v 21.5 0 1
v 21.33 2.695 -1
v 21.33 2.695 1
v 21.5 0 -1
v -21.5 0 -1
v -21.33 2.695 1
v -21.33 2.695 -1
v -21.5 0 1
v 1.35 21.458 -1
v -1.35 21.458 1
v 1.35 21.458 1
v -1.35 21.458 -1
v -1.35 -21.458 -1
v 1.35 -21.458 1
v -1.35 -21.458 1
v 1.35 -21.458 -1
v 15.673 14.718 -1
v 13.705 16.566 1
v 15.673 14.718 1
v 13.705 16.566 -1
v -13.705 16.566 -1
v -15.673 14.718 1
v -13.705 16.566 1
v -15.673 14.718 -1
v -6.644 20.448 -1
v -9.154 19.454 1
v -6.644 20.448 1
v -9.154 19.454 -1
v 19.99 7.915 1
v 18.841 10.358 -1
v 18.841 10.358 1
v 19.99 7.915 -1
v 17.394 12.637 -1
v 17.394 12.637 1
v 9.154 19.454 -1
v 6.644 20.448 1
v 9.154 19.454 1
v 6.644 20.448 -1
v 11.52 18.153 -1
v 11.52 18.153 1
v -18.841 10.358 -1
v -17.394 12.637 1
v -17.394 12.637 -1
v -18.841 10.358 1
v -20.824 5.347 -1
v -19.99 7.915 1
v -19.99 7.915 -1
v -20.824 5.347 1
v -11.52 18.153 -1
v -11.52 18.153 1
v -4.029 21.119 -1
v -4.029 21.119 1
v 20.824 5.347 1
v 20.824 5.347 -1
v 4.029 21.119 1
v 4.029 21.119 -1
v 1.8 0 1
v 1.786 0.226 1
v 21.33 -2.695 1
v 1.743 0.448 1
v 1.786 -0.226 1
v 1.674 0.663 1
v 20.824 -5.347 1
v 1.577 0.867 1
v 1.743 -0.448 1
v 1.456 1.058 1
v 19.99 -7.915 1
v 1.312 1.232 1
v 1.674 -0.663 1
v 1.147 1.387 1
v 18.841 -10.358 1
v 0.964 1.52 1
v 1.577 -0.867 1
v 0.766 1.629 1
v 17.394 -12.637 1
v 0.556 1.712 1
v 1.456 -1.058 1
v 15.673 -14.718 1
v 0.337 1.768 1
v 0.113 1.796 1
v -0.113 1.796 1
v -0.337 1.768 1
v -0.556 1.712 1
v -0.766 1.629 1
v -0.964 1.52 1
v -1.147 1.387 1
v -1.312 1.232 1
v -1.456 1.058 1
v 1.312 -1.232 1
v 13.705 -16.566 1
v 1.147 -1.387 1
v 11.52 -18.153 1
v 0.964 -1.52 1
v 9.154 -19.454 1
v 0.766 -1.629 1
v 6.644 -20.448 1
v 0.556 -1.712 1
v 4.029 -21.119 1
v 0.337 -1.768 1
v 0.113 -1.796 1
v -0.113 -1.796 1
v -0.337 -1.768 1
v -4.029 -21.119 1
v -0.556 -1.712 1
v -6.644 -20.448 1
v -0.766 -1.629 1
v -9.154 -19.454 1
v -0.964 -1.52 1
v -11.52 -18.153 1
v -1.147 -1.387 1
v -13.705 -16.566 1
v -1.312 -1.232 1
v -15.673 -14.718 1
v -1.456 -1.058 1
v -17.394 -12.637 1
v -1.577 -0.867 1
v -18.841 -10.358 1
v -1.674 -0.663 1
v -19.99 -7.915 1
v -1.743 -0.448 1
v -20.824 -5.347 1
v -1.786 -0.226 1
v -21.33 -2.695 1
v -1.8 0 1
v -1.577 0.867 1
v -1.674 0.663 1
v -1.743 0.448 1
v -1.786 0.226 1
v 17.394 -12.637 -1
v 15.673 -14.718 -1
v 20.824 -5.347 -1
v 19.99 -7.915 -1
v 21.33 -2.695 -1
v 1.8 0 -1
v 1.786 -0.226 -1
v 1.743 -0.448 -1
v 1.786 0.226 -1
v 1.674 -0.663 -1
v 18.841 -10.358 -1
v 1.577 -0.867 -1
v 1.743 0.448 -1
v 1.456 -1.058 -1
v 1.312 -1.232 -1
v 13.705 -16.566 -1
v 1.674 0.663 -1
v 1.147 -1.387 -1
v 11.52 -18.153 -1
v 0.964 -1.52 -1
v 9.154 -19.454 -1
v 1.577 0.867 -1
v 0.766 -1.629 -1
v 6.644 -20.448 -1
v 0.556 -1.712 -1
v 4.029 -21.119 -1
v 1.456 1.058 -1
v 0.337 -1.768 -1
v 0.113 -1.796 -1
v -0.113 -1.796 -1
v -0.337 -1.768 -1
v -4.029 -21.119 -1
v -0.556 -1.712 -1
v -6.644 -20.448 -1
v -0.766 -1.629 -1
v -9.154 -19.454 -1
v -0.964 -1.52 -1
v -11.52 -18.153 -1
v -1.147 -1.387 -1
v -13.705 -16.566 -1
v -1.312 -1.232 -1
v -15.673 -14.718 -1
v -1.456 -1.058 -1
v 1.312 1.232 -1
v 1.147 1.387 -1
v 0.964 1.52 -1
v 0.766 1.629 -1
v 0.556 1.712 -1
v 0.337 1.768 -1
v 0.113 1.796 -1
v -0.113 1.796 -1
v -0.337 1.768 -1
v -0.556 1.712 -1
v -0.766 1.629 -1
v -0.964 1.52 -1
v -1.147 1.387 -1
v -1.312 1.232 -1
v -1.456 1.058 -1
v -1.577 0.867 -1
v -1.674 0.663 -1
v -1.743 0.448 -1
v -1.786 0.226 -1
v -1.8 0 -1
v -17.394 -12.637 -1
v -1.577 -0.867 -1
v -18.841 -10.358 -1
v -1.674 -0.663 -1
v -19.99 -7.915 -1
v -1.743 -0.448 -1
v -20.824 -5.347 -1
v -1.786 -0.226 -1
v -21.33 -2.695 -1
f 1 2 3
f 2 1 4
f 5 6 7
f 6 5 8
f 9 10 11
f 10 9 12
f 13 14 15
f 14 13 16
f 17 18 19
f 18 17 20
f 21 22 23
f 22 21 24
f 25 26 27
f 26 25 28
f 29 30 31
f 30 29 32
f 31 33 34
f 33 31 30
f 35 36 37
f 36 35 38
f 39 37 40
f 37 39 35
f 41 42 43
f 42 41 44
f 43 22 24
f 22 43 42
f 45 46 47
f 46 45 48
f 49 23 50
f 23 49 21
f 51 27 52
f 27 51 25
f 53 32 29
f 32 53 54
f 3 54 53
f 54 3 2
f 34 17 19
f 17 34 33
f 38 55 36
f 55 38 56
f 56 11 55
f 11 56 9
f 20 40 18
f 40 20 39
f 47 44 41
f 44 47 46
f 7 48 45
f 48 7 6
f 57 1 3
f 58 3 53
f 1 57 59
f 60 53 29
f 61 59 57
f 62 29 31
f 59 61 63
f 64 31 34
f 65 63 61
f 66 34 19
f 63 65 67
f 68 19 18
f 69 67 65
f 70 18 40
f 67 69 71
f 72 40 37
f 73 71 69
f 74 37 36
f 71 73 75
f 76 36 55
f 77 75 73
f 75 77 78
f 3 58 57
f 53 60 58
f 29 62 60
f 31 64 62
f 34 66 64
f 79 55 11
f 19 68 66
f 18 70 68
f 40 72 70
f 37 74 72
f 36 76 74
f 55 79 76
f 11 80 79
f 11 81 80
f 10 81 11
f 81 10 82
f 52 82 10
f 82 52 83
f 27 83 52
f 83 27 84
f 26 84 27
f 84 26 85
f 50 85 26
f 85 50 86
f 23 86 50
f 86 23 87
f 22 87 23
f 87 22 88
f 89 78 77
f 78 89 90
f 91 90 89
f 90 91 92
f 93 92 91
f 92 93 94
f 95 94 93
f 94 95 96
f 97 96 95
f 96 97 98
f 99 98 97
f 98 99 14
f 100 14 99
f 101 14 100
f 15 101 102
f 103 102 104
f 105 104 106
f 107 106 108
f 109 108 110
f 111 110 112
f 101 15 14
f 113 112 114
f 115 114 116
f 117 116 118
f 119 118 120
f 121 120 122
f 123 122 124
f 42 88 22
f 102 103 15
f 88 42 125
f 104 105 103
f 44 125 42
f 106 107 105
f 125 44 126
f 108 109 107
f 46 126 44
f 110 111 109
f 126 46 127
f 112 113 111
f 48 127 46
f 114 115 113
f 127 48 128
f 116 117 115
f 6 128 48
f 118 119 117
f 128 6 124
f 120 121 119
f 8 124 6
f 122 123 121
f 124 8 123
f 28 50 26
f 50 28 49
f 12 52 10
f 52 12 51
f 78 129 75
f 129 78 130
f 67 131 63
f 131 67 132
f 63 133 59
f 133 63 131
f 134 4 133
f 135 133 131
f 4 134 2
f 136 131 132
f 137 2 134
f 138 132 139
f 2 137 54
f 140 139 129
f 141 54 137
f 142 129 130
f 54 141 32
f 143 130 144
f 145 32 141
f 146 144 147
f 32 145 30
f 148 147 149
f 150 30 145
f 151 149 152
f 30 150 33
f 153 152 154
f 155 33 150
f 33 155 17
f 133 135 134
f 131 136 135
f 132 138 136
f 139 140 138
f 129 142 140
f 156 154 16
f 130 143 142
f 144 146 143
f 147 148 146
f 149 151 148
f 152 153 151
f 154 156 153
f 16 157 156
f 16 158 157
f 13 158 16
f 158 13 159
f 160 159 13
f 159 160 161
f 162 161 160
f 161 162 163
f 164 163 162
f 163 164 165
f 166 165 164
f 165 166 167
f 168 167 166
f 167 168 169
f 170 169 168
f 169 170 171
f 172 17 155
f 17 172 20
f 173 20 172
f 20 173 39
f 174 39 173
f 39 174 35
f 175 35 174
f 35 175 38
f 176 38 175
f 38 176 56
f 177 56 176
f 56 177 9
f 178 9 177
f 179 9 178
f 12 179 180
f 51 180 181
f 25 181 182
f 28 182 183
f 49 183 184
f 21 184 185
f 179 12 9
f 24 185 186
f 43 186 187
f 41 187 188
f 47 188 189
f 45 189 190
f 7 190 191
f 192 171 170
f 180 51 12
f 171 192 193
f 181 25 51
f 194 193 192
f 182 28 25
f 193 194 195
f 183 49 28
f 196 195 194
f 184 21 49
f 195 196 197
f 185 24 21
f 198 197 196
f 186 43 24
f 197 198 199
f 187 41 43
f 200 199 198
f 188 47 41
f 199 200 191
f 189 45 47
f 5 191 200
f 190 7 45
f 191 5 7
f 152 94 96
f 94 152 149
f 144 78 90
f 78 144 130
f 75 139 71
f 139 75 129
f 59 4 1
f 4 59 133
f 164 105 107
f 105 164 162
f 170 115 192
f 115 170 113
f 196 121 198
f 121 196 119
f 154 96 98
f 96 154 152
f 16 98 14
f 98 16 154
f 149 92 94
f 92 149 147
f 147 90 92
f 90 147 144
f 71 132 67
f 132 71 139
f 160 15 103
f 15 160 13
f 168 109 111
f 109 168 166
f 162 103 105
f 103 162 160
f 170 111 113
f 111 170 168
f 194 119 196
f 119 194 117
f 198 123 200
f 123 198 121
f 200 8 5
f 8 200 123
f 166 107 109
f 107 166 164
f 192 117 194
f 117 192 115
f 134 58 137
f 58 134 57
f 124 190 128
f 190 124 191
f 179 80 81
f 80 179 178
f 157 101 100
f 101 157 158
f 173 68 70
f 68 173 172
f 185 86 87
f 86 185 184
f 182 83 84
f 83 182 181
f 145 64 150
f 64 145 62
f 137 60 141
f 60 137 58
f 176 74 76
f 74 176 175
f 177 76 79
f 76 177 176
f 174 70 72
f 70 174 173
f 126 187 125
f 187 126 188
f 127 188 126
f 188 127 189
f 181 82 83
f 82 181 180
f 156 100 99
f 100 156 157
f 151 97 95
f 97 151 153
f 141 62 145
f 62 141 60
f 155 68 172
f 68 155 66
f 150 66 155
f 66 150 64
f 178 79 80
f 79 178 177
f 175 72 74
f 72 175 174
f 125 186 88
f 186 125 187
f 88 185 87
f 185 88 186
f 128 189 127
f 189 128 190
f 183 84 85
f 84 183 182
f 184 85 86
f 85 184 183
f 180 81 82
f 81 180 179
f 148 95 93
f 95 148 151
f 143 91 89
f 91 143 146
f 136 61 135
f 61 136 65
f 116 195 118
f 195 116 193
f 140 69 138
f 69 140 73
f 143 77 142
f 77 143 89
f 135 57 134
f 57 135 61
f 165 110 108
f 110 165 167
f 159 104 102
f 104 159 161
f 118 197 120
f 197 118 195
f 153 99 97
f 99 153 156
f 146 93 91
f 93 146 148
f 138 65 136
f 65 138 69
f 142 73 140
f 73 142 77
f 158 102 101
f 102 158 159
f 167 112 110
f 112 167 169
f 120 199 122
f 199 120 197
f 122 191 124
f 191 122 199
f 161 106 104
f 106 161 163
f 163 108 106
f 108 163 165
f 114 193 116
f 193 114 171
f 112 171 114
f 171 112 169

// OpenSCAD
$fn = 50;


difference() {
	union() {
		translate(v = [0, 0, -1.0000000000]) {
			cylinder(h = 2, r = 21.5000000000);
		}
	}
	union() {
		translate(v = [0, 0, -100.0000000000]) {
			cylinder(h = 200, r = 1.8000000000);
		}
	}
}
